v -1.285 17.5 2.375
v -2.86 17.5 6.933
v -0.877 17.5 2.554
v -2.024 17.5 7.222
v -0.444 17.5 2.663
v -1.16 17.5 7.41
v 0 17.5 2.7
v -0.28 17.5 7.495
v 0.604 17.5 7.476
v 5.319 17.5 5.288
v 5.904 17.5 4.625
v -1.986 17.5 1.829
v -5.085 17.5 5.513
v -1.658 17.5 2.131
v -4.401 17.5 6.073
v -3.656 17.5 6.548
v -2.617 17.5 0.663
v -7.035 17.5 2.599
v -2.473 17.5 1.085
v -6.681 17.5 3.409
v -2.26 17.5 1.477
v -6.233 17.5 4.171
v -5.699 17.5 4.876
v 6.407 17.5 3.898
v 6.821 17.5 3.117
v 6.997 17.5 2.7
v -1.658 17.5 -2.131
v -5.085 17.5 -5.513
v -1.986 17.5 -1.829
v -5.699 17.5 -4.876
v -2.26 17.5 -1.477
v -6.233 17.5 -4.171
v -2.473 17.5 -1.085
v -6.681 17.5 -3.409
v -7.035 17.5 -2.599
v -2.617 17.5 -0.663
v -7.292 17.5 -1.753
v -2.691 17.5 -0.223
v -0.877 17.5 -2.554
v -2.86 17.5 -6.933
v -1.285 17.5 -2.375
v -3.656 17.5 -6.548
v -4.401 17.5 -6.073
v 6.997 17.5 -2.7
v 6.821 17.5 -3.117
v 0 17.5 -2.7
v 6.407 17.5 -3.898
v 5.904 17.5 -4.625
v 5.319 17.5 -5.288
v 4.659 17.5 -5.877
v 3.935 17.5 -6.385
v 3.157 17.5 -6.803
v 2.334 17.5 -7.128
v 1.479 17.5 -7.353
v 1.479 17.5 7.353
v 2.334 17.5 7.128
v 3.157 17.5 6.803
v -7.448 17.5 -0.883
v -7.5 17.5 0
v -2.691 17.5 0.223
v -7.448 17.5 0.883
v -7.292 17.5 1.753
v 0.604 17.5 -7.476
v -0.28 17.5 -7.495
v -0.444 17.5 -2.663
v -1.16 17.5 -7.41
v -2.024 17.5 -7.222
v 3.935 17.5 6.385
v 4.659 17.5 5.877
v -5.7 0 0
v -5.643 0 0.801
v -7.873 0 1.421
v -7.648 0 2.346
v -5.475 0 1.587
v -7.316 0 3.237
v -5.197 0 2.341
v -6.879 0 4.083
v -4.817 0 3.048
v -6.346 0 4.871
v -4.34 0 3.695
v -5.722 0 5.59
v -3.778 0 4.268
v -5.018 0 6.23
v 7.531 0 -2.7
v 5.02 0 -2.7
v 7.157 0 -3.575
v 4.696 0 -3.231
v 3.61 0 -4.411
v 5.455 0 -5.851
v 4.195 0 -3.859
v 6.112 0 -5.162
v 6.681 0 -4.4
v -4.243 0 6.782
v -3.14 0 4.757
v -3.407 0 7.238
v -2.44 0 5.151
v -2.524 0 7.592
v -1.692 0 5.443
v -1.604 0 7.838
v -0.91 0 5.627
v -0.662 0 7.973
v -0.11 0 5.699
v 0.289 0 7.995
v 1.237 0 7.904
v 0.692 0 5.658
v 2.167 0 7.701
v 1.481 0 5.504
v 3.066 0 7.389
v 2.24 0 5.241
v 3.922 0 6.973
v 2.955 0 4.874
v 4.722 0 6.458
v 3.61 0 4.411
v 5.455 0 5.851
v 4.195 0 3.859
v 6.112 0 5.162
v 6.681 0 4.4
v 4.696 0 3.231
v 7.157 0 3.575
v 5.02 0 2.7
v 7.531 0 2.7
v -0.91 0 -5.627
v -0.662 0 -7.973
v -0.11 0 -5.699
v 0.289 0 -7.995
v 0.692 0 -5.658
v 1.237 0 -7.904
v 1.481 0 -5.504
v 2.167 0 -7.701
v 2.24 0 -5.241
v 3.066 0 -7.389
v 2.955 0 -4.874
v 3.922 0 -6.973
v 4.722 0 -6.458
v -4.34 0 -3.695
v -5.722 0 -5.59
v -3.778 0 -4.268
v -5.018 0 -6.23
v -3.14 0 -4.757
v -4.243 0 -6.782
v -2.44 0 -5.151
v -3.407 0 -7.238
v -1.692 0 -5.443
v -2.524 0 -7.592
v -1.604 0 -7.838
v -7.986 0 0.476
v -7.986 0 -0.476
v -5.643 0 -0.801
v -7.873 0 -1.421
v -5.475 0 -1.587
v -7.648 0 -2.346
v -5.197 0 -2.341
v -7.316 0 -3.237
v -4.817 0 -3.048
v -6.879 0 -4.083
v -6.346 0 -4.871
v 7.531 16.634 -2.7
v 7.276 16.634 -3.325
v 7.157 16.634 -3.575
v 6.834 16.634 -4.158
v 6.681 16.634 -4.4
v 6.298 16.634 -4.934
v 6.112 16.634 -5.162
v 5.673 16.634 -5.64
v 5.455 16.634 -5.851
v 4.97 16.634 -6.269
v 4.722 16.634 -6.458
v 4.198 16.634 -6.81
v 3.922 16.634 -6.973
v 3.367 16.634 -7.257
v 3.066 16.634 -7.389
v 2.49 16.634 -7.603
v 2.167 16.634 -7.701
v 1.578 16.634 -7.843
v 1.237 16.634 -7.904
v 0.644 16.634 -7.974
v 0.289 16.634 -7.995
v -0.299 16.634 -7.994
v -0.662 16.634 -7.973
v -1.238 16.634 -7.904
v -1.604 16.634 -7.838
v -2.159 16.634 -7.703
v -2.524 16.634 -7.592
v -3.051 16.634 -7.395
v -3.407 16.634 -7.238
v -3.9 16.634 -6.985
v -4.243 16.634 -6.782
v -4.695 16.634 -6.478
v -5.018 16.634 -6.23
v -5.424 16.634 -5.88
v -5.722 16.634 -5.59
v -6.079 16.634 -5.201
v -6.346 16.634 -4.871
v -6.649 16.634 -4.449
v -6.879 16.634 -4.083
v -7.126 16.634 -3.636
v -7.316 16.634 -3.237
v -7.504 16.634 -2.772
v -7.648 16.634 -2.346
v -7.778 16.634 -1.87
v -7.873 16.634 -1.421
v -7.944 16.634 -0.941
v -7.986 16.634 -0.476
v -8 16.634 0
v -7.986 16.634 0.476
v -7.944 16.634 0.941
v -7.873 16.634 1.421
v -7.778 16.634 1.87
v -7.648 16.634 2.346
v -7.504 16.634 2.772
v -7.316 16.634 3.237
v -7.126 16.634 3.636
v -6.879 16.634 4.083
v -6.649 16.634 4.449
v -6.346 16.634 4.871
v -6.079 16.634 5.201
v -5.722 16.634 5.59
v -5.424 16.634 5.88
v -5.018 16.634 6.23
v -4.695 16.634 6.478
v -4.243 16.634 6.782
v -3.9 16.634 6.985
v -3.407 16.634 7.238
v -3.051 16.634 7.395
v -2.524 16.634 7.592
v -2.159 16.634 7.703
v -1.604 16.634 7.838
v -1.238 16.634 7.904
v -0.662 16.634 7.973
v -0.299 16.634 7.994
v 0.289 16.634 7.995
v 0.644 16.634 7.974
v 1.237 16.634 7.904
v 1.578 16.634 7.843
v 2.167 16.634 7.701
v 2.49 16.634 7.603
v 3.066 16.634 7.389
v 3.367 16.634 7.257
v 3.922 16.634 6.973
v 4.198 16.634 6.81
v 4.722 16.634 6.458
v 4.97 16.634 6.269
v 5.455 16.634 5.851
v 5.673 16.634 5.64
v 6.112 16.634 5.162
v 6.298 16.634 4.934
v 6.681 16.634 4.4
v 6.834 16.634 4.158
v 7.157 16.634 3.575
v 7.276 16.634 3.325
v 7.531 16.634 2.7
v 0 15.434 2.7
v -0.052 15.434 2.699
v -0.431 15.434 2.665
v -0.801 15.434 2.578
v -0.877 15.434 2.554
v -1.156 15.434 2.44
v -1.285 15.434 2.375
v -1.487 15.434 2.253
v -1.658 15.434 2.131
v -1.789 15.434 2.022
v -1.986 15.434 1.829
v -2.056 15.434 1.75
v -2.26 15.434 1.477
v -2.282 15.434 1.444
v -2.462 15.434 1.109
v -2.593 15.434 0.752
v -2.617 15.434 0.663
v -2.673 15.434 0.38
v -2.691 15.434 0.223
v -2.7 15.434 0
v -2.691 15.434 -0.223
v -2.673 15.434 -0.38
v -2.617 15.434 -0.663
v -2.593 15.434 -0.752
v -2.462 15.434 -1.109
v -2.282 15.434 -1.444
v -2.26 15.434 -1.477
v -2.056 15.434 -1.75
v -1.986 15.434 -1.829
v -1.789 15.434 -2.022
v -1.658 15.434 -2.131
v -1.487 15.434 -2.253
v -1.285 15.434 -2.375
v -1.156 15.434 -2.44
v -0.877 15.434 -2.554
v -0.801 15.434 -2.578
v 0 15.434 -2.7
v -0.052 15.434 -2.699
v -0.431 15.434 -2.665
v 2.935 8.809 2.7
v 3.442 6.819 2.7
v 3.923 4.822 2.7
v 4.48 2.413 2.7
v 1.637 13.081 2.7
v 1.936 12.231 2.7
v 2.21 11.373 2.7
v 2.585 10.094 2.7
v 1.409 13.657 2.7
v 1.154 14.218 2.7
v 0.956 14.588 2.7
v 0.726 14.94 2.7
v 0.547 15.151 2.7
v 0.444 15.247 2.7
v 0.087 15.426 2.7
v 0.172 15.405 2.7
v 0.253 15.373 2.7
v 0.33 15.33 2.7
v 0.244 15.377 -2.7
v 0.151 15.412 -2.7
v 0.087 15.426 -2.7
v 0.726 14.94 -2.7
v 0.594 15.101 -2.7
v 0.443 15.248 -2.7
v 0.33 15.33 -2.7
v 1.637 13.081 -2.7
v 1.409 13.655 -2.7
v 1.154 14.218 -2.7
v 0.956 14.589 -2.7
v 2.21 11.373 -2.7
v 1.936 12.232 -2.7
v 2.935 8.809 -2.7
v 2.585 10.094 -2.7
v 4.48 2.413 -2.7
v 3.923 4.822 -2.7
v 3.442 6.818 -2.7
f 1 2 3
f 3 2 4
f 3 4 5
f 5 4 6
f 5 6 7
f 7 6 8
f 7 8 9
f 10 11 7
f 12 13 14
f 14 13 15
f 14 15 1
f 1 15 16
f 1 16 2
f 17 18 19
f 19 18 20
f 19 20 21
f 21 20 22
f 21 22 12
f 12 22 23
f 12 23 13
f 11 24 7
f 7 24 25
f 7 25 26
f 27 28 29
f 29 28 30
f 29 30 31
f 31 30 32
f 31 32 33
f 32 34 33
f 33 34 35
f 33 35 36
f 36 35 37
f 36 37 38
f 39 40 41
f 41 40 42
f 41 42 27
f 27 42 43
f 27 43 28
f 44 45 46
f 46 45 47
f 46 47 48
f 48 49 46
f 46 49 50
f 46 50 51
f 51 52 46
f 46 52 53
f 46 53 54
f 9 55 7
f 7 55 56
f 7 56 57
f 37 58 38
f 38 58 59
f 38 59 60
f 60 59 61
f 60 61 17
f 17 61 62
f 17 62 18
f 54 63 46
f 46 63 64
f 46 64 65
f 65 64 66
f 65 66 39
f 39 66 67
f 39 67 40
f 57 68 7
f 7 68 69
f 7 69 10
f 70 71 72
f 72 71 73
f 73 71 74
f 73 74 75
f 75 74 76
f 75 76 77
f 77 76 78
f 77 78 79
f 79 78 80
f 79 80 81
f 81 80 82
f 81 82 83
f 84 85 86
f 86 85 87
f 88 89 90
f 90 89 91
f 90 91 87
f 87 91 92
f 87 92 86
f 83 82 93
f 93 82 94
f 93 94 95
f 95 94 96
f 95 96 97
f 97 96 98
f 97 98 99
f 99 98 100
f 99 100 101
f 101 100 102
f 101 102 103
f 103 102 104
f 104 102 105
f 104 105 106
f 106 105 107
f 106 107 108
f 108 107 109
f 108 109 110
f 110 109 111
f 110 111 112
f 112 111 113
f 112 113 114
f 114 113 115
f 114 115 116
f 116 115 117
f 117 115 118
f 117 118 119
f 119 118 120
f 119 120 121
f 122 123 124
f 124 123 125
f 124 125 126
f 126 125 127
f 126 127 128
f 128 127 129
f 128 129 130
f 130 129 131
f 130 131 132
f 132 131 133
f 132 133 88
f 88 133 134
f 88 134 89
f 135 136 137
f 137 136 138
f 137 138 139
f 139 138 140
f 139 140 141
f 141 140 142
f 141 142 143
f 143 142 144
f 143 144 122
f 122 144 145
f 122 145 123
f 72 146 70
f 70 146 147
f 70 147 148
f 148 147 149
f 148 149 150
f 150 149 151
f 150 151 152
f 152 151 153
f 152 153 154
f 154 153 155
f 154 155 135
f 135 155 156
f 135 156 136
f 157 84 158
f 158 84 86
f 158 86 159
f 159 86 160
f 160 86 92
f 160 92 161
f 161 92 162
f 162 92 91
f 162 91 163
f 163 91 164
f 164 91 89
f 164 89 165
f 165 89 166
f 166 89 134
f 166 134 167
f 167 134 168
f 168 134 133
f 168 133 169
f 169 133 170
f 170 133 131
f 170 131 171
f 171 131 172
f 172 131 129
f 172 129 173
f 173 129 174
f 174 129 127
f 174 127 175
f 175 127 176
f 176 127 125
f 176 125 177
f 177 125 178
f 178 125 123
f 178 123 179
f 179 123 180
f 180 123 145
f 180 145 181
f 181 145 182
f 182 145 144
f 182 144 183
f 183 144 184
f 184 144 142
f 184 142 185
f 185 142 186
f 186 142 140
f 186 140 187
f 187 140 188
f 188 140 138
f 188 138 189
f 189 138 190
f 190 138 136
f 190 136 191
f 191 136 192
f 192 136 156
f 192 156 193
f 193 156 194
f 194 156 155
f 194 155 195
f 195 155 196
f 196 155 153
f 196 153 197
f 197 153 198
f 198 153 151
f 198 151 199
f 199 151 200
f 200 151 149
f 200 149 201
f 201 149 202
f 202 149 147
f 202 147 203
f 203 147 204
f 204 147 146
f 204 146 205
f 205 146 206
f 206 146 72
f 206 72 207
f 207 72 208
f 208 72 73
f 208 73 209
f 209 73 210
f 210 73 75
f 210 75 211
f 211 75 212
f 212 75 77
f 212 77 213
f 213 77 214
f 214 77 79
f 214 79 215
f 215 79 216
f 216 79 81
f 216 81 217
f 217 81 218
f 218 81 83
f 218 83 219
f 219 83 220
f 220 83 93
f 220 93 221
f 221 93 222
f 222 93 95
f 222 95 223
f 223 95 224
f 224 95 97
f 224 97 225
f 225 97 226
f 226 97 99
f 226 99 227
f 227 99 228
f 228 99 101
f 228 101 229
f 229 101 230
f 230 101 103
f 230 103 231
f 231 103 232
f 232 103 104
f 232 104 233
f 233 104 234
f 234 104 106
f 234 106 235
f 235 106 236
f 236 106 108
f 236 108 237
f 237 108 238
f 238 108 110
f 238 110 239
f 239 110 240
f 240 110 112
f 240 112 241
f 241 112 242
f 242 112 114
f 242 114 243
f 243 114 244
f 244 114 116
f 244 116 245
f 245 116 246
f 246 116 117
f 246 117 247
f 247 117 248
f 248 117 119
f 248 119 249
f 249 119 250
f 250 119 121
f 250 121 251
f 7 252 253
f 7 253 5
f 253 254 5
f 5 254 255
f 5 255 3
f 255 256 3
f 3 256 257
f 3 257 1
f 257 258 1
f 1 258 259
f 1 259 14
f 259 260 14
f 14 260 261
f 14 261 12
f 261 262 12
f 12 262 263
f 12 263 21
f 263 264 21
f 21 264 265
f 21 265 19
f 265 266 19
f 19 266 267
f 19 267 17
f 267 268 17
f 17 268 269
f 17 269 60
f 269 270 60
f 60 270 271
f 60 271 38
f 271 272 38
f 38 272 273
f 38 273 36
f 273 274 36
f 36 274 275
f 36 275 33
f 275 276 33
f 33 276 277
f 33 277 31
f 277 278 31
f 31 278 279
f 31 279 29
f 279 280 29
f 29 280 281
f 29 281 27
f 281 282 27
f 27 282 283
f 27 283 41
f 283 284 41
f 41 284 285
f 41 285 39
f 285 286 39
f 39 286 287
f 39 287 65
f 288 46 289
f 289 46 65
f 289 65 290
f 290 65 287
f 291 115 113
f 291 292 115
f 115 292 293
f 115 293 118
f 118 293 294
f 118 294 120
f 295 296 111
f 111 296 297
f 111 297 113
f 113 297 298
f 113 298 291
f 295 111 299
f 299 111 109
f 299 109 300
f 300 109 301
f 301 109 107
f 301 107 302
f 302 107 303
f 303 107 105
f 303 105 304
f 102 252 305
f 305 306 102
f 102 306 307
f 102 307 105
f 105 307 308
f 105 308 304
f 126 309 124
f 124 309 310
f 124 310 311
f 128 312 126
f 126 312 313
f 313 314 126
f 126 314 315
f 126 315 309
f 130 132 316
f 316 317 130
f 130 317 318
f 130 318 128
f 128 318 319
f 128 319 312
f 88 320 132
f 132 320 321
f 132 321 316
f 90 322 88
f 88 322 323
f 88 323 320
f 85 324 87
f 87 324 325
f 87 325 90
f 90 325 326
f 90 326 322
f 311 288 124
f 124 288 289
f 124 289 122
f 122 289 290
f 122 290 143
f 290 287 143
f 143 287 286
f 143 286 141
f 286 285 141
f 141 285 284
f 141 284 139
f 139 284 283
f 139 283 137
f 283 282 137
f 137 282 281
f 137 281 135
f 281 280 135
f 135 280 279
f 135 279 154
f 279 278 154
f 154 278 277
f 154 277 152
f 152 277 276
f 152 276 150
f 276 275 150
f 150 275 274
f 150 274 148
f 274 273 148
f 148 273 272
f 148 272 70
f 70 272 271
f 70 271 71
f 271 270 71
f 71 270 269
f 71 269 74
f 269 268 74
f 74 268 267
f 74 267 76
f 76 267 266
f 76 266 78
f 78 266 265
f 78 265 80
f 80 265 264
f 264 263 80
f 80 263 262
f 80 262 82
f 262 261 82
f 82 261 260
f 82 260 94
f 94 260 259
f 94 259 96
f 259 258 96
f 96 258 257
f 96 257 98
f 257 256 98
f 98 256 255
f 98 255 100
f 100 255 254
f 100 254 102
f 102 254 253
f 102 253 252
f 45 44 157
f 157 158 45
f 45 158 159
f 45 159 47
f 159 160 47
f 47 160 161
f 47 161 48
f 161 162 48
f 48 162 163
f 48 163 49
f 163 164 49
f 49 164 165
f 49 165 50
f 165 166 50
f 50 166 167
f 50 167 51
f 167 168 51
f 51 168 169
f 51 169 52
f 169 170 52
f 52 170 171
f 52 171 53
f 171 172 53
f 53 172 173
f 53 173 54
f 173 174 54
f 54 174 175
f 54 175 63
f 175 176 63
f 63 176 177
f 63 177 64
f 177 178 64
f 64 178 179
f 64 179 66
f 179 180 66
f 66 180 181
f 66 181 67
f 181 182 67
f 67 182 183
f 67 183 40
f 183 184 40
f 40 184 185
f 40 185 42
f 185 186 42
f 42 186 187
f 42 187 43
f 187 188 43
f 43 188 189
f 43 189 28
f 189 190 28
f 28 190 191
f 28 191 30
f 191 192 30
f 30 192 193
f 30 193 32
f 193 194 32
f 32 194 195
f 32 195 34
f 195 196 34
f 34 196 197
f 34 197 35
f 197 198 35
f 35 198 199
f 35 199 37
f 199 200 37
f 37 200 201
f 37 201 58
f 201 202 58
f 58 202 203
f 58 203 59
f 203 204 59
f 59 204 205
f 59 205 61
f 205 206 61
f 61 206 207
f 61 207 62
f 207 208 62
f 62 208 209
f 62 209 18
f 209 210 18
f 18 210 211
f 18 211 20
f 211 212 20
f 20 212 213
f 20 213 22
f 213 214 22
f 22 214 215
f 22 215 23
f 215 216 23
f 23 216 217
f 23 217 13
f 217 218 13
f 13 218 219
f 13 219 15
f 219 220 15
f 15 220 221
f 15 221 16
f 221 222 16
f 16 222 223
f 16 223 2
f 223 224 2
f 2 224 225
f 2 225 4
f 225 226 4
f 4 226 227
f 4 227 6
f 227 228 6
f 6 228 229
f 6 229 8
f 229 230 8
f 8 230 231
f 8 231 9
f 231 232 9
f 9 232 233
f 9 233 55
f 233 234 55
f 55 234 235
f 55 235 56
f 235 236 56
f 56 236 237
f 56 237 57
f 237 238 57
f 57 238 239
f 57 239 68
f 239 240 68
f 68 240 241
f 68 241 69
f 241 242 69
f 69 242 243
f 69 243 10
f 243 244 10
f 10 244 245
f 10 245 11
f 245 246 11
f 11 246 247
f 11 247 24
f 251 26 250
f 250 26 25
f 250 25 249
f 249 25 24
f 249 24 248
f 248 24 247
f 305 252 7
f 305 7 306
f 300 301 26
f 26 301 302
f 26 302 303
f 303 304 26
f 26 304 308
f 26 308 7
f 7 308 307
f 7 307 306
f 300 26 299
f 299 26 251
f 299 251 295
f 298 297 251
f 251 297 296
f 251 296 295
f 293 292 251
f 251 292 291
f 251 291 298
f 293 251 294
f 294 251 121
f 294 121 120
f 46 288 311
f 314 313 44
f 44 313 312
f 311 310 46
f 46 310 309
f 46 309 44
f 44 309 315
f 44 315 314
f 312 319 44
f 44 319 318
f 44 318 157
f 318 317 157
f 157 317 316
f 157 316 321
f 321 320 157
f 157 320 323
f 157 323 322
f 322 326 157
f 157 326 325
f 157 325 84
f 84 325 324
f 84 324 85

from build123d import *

# Parameters (mm, degrees)
SKETCH1_R           = 8
SKETCH1_R_2         = 2.7
BOSS_EXTRUDE1_DEPTH = 17.5
CHAMFER1_SIZE       = 3
CHAMFER1_SIZE2      = 15.433662048
CHAMFER2_SIZE       = 0.5
CHAMFER2_SIZE2      = 0.866025404
SKETCH2_W           = 11.3806618
SKETCH2_H           = 5.4
CUT_EXTRUDE1_DEPTH  = 20


with BuildPart() as part:
    # Sketch1 → Boss-Extrude1 (new body)
    with BuildSketch(Plane(origin=(0, 0, 0), x_dir=(1, 0, 0), z_dir=(0, 1, 0))):
        with Locations(Location((0, 0, 0), (0, 0, 270))):
            Circle(SKETCH1_R)
        with Locations(Location((0, 0, 0), (0, 0, 270))):
            Circle(SKETCH1_R_2, mode=Mode.SUBTRACT)
    extrude(amount=BOSS_EXTRUDE1_DEPTH)

    # Chamfer1
    chamfer1_edges = [part.edges().sort_by_distance(p)[0] for p in [
        (0, 0, -2.7),
    ]]
    chamfer1_side = [part.faces().sort_by_distance(p)[0] for p in [
        (0, 0, -7.77372583),
    ]]
    chamfer(chamfer1_edges, length=CHAMFER1_SIZE, length2=CHAMFER1_SIZE2, reference=chamfer1_side[0])

    # Chamfer2
    chamfer2_edges = [part.edges().sort_by_distance(p)[0] for p in [
        (0, 17.5, -8),
    ]]
    chamfer2_side = [part.faces().sort_by_distance(p)[0] for p in [
        (0, 17.5, -7.77372583),
    ]]
    chamfer(chamfer2_edges, length=CHAMFER2_SIZE, length2=CHAMFER2_SIZE2, reference=chamfer2_side[0])

    # Sketch2 → Cut-Extrude1 (cut)
    with BuildSketch(Plane(origin=(0, 17.5, 0), x_dir=(1, 0, 0), z_dir=(0, 1, 0))):
        with Locations((5.6903309, 0)):
            Rectangle(SKETCH2_W, SKETCH2_H)
    extrude(amount=-CUT_EXTRUDE1_DEPTH, mode=Mode.SUBTRACT)


solid = part.part
